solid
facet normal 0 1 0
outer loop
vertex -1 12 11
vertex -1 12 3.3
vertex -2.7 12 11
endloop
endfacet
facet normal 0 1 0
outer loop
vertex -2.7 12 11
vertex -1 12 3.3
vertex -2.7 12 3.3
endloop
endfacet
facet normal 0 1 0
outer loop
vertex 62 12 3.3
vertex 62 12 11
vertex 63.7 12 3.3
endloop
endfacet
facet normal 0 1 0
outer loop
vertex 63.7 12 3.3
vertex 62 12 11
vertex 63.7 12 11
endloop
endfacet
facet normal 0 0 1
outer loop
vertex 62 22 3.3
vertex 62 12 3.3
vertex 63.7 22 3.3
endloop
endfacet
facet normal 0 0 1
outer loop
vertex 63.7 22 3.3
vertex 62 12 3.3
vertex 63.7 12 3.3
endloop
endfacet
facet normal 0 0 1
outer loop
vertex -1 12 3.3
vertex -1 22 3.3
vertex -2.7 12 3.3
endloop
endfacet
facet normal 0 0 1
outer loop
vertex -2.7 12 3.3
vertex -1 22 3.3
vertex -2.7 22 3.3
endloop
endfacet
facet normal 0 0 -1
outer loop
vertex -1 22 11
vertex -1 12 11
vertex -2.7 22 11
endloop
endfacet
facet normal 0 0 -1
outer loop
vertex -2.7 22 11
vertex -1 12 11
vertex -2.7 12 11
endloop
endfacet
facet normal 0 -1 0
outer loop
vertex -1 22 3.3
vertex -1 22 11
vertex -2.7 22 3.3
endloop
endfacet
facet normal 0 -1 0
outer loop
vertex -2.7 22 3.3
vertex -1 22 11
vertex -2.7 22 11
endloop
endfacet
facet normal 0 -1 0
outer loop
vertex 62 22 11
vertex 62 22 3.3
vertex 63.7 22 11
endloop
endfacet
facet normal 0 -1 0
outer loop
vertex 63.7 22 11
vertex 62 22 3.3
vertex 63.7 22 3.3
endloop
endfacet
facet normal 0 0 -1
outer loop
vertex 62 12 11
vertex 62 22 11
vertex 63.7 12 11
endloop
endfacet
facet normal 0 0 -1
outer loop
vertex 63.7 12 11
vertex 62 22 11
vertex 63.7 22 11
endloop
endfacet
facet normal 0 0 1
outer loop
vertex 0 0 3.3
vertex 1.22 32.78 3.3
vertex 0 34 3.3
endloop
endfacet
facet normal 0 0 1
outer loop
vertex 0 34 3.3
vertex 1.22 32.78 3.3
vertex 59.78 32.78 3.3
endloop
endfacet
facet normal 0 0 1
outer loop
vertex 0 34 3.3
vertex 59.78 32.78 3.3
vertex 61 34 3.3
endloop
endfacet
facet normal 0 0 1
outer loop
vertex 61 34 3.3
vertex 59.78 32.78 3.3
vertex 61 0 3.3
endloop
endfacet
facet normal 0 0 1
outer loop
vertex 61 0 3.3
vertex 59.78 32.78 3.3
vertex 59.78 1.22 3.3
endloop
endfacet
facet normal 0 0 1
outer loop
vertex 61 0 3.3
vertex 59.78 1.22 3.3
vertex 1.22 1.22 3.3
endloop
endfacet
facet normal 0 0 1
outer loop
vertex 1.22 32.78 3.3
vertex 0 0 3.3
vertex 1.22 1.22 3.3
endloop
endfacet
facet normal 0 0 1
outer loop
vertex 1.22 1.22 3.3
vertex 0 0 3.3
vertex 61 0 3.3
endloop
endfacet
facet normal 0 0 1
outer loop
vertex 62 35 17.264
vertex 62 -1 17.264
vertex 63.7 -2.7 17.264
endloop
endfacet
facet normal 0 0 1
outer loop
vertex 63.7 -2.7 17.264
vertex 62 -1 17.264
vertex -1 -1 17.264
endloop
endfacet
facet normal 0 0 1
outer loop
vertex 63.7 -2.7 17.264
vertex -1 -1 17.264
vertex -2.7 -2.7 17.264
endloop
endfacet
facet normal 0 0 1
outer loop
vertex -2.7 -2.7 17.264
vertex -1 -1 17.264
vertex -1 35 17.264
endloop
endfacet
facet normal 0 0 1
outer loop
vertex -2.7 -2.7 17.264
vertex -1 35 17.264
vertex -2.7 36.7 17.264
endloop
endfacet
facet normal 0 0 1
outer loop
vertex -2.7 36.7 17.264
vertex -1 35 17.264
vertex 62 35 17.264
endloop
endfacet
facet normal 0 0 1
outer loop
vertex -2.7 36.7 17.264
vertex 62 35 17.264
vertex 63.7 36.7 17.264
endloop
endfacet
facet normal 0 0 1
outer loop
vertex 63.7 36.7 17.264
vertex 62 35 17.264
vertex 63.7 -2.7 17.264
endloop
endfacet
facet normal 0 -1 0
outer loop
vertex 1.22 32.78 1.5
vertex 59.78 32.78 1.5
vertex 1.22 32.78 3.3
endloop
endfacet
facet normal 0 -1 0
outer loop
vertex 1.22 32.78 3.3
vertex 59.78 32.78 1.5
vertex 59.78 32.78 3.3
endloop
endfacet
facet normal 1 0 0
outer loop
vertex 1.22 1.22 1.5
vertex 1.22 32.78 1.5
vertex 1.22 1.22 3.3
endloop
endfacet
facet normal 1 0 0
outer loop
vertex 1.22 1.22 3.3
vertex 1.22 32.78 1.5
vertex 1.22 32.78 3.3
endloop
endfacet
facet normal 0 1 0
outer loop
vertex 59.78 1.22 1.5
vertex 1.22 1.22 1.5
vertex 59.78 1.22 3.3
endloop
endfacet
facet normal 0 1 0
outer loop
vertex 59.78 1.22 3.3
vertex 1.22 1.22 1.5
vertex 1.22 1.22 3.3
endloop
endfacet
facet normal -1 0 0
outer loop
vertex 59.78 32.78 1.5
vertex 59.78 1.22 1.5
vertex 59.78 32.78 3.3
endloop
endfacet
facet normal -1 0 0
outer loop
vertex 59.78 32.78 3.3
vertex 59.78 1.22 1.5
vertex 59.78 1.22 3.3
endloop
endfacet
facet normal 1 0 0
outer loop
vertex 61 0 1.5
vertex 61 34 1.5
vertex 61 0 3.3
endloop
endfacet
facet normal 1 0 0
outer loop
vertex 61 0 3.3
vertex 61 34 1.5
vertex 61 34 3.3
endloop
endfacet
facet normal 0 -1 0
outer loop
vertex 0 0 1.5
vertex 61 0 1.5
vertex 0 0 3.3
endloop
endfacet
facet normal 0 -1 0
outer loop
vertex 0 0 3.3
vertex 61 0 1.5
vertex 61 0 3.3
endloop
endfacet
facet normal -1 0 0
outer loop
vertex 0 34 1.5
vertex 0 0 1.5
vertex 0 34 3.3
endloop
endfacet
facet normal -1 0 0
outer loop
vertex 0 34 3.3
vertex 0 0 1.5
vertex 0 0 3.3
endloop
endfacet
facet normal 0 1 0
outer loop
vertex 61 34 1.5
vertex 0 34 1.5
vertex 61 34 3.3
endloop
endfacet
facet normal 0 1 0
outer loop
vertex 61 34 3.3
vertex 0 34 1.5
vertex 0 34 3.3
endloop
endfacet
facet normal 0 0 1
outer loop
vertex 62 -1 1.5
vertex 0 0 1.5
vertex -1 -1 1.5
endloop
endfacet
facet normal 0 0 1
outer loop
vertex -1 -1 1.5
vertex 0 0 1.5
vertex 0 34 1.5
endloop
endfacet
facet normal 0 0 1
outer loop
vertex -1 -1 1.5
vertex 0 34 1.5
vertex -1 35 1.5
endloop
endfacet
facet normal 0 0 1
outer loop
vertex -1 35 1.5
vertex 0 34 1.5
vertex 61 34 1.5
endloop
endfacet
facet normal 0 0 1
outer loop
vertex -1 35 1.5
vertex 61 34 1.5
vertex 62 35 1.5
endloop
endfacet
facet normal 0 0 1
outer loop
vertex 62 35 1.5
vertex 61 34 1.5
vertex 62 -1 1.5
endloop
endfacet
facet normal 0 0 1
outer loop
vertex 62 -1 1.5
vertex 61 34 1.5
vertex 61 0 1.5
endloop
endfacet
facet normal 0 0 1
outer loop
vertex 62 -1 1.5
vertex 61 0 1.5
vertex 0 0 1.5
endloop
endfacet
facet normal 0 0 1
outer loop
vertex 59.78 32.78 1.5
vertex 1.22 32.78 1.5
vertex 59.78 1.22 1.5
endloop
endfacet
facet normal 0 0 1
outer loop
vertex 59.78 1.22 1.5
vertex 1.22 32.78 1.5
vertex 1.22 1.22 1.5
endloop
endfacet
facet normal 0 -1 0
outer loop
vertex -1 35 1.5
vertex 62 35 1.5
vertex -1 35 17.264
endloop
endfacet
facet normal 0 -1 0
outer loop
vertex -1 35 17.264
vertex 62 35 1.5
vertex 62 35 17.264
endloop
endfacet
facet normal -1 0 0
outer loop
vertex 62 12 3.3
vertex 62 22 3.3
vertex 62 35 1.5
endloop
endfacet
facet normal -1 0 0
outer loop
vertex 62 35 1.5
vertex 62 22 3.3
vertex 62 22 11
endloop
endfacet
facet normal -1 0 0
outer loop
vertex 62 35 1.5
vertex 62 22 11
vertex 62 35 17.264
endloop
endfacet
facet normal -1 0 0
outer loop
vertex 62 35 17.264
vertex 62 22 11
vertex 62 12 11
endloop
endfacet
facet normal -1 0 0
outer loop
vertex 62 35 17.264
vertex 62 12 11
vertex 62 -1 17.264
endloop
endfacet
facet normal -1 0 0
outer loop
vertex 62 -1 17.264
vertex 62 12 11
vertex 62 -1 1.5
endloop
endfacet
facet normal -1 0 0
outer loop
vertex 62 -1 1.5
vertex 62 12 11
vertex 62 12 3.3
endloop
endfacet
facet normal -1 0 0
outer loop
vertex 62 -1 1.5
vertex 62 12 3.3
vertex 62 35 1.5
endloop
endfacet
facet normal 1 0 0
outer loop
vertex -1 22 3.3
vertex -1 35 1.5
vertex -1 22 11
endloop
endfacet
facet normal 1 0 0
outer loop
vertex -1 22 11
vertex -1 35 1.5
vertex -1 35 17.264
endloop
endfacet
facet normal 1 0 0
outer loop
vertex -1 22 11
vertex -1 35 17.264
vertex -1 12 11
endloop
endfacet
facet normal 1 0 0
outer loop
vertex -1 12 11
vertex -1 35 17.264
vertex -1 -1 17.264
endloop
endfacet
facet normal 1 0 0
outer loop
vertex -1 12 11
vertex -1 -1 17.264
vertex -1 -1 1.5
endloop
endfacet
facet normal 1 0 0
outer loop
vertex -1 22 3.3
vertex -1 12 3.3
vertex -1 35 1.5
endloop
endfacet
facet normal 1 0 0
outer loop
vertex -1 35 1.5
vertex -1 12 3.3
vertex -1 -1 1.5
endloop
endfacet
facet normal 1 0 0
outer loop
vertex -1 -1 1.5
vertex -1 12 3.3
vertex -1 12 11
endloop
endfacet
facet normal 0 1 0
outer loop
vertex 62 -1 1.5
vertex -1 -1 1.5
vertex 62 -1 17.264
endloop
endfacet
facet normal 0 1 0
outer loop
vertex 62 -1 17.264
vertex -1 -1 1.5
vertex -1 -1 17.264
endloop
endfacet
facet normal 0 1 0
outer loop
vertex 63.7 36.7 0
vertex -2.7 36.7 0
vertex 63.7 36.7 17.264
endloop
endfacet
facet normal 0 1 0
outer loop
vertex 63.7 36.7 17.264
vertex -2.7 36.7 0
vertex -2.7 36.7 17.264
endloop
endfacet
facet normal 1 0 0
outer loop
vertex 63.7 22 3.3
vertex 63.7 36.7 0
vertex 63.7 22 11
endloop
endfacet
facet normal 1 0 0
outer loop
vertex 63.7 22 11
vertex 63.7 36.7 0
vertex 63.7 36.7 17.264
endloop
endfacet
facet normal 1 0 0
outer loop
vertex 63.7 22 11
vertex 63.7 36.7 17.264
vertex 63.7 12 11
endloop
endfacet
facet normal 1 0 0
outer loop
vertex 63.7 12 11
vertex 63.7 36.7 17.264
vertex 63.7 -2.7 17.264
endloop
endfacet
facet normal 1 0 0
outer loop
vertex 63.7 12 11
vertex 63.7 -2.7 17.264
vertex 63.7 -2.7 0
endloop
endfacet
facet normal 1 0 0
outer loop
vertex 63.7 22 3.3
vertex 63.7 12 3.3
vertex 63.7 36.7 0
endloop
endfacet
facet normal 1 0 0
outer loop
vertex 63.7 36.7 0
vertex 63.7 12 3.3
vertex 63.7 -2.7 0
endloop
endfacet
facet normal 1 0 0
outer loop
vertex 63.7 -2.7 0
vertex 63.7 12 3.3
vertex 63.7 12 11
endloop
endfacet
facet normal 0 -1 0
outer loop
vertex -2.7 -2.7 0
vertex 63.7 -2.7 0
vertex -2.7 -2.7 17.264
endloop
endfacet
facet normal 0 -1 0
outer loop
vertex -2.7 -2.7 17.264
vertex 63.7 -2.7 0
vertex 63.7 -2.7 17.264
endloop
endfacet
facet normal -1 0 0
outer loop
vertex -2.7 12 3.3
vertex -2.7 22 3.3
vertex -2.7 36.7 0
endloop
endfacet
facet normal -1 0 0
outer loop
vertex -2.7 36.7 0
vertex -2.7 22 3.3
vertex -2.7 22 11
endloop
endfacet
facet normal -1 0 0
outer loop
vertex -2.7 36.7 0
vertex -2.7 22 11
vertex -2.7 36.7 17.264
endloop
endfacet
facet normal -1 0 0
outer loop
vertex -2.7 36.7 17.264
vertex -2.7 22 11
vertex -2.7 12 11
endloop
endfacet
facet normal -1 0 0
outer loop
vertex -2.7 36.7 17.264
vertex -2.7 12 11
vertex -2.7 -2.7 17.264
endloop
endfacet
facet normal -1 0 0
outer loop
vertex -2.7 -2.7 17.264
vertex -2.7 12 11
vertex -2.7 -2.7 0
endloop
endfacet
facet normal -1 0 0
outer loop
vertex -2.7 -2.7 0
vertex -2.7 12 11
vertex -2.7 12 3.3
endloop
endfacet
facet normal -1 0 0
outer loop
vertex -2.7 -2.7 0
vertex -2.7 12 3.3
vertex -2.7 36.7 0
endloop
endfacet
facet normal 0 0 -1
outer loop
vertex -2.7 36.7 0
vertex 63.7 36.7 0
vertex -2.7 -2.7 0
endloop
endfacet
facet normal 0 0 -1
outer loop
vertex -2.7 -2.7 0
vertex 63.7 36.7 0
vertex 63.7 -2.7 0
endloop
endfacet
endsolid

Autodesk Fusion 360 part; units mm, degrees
sketch "Spodek" plane through (0, 0, 0) normal (0, 0, 1) x (1, 0, 0)
  line L0 (0, 0) -> (61, 0)
  line L1 (61, 0) -> (61, 34)
  line L2 (61, 34) -> (0, 34)
  line L3 (0, 34) -> (0, 0)
  line L4 (-1, 35) -> (62, 35)
  line L5 (62, 35) -> (62, -1)
  line L6 (62, -1) -> (-1, -1)
  line L7 (-1, -1) -> (-1, 35)
  line L8 (-2.7, -2.7) -> (-2.7, 36.7) construction
  line L9 (63.7, 36.7) -> (-2.7, 36.7) construction
  line L10 (63.7, -2.7) -> (63.7, 36.7) construction
  line L11 (63.7, -2.7) -> (-2.7, -2.7) construction
  line L12 (-2.7, -2.7) -> (63.7, -2.7)
  line L13 (63.7, -2.7) -> (63.7, 36.7)
  line L14 (63.7, 36.7) -> (-2.7, 36.7)
  line L15 (-2.7, 36.7) -> (-2.7, -2.7)
  dimension "d1" = 61
  dimension "d2" = 34
  dimension "d3" = 63
  dimension "d4" = 36
  dimension "d5" = 1.7
  dimension "d6" = 1.7
  dimension "d7" = 1.7
  dimension "d8" = 1.7
sketch "TotoNevim" plane through (0, 0, 0) normal (0, 0, 1) x (1, 0, 0)
extrude "Extrude1" add sketch "Spodek" along normal blind 12 contours L12 L13 L14 L15
extrude "Extrude2" add sketch "Spodek" along normal blind 1.5 contours L0 L1 L2 L3 | L4 L5 L6 L7
sketch "Sketch3" plane through (0, 0, 1.5) normal (0, 0, 1) x (-1, 0, 0)
  line L0 (1, 1) -> (-62, 1)
  line L1 (-62, 1) -> (-62, -35)
  line L2 (-62, -35) -> (1, -35)
  line L3 (1, -35) -> (1, 1)
  line L4 (-59.78, -32.78) -> (-1.22, -32.78)
  line L5 (-1.22, -32.78) -> (-1.22, -1.22)
  line L6 (-1.22, -1.22) -> (-59.78, -1.22)
  line L7 (-59.78, -1.22) -> (-59.78, -32.78)
  line L8 (-61, 0) -> (-61, -34)
  line L9 (0, 0) -> (-61, 0)
  line L10 (0, -34) -> (0, 0)
  line L11 (-61, -34) -> (0, -34)
  dimension "d13" = 1.22
  dimension "d14" = 1.22
  dimension "d15" = 1.22
  dimension "d16" = 1.22
extrude "Extrude3" add sketch "Sketch3" along normal blind 1.8 contours L8 L9 L10 L11
extrude "Extrude4" add 1 faces at (20, -2.1333, 12) along direction (0, 0, 1) blind 5.243
extrude "Extrude5" add 1 faces at (20, -2.1333, 17.243) along direction (0, 0, 1) blind 0.021
sketch "Prurez1" plane through (-2.7, 0, 0) normal (-1, 0, 0) x (0, -1, 0)
  line L0 (-36.7, 0) -> (2.7, 0)
  line L1 (2.7, 0) -> (2.7, 17.264)
  line L2 (2.7, 17.264) -> (-36.7, 17.264)
  line L3 (-36.7, 17.264) -> (-36.7, 0)
  line L4 (-12, 3.3) -> (-12, 11) construction
  line L5 (0, 1.5) -> (0, 3.3) construction
  line L6 (-22, 11) -> (-22, 3.3) construction
  line L7 (-34, 3.3) -> (-34, 11) construction
  line L8 (-35, 1.5) -> (-35, 17.264) construction
  line L9 (-22, 11) -> (-12, 11) construction
  line L10 (-12, 11) -> (-12, 3.3) construction
  line L11 (-12, 3.3) -> (-22, 3.3) construction
  line L12 (-22, 3.3) -> (-22, 11) construction
  line L13 (-22, 11) -> (-12, 11)
  line L14 (-12, 11) -> (-12, 3.3)
  line L15 (-12, 3.3) -> (-22, 3.3)
  line L16 (-22, 3.3) -> (-22, 11)
  dimension "d23" = 7.7
  dimension "d24" = 12
  dimension "d25" = 12
  dimension "d26" = 1
extrude "Extrude6" cut sketch "Prurez1" against normal up to surface (66.4 mm away) contours L13 L14 L15 L16
equation "d19 = 14 mm - 8.757 mm"
equation "d21 = 14 mm - 13.979 mm"
